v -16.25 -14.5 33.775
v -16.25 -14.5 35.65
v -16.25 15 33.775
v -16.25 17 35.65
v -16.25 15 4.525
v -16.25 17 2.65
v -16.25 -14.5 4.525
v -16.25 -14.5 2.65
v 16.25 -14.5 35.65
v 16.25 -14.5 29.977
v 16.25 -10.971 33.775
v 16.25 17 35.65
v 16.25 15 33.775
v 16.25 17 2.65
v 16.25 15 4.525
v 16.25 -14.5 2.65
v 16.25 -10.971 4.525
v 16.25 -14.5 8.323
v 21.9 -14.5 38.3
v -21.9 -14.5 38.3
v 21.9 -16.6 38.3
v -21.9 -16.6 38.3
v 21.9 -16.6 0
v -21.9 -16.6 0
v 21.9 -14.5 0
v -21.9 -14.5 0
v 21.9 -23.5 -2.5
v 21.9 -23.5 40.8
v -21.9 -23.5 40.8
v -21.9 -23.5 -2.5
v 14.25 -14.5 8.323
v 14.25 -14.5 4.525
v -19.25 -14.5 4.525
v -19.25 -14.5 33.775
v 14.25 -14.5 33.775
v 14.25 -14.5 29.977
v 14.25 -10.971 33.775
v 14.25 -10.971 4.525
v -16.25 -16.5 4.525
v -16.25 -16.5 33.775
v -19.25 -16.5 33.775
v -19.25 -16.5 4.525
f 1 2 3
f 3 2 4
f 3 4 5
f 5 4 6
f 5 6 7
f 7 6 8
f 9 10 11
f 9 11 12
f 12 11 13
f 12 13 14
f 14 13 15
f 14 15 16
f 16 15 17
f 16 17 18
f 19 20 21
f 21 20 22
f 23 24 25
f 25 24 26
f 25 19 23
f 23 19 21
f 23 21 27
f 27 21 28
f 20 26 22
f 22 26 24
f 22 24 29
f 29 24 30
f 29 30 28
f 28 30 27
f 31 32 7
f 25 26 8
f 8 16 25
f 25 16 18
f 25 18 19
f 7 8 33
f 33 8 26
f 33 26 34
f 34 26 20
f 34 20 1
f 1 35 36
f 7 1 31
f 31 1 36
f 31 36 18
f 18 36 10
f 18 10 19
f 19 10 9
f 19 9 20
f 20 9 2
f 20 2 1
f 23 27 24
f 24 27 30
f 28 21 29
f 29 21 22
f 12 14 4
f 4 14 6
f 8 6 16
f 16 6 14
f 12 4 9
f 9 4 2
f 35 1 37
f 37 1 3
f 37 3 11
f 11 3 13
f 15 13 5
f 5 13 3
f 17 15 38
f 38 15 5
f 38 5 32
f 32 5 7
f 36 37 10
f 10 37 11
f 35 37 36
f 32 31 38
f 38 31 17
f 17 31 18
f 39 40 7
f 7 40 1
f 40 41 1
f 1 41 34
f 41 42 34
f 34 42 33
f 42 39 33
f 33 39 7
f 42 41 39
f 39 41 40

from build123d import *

# Parameters (mm, degrees)
SKETCH1_W                = 30
SKETCH1_H                = 29
SKETCH1_R                = 1.75
BOSS_EXTRUDE1_DEPTH      = 2
SKETCH2_W                = 43.8
SKETCH2_H                = 38.3
BOSS_EXTRUDE3_DEPTH      = 9
BOSS_EXTRUDE4_DEPTH      = 43.8
SKETCH16_W               = 2
SKETCH16_H               = 29
CUT_EXTRUDE1_DEPTH       = 26.5
SKETCH15_W               = 32.5
SKETCH15_H               = 31.5
BOSS_EXTRUDE5_DEPTH      = 2
BOSS_EXTRUDE5_DEPTH_BACK = 31
SKETCH20_W               = 29.25
SKETCH20_H               = 29.5
CUT_EXTRUDE2_DEPTH       = 22.9
CUT_EXTRUDE2_DEPTH_BACK  = 22.9
BOSS_EXTRUDE6_DEPTH      = 2
SKETCH22_W               = 3
SKETCH22_H               = 29.25
CUT_EXTRUDE3_DEPTH       = 2


with BuildPart() as part:
    # Sketch1 → Boss-Extrude1 (new body)
    with BuildSketch(Plane.XY):
        Rectangle(SKETCH1_W, SKETCH1_H)
        with Locations((-8.45, 8.168333333)):
            Circle(SKETCH1_R, mode=Mode.SUBTRACT)
        with Locations((8.168333333, 8.45)):
            Circle(SKETCH1_R, mode=Mode.SUBTRACT)
        with Locations((8.45, -8.168333333)):
            Circle(SKETCH1_R, mode=Mode.SUBTRACT)
        with Locations((-8.168333333, -8.45)):
            Circle(SKETCH1_R, mode=Mode.SUBTRACT)
    extrude(amount=BOSS_EXTRUDE1_DEPTH)

    # Sketch2 → Boss-Extrude3 (add)
    with BuildSketch(Plane.XZ.offset(14.5)):
        with Locations((0, 19.15)):
            Rectangle(SKETCH2_W, SKETCH2_H)
    extrude(amount=BOSS_EXTRUDE3_DEPTH)

    # Sketch3 → Boss-Extrude4 (add)
    with BuildSketch(Plane.ZY.offset(21.9)):
        Polygon((0, -23.5), (-2.5, -23.5), (0, -16.6), align=None)
        Polygon((38.3, -23.5), (40.8, -23.5), (38.3, -16.6), align=None)
    extrude(amount=-BOSS_EXTRUDE4_DEPTH)

    # Sketch16 → Cut-Extrude1 (cut, symmetric)
    with BuildSketch(Plane(origin=(0, 0, 0), x_dir=(0, 0, -1), z_dir=(1, 0, 0))):
        with Locations((-1, 0)):
            Rectangle(SKETCH16_W, SKETCH16_H)
    extrude(amount=CUT_EXTRUDE1_DEPTH, both=True, mode=Mode.SUBTRACT)

    # Sketch15 → Boss-Extrude5 (add, two sides)
    with BuildSketch(Plane(origin=(0, 0, 4.65), x_dir=(-1, 0, 0), z_dir=(0, 0, -1))) as boss_extrude5_sk:
        with Locations((0, 1.25)):
            Rectangle(SKETCH15_W, SKETCH15_H)
    extrude(amount=BOSS_EXTRUDE5_DEPTH)
    extrude(boss_extrude5_sk.sketch, amount=-BOSS_EXTRUDE5_DEPTH_BACK)

    # Sketch20 → Cut-Extrude2 (cut, two sides)
    with BuildSketch(Plane(origin=(0, 0, 0), x_dir=(0, 0, -1), z_dir=(1, 0, 0))) as cut_extrude2_sk:
        with Locations((-19.15, 0.25)):
            Rectangle(SKETCH20_W, SKETCH20_H)
    extrude(amount=CUT_EXTRUDE2_DEPTH, mode=Mode.SUBTRACT)
    extrude(cut_extrude2_sk.sketch, amount=-CUT_EXTRUDE2_DEPTH_BACK, mode=Mode.SUBTRACT)

    # Sketch21 → Boss-Extrude6 (add)
    with BuildSketch(Plane(origin=(16.25, 0, 0), x_dir=(0, 0, -1), z_dir=(1, 0, 0))):
        Polygon((-35.65, -10.971015683), (-33.775, -10.971015683), (-29.976700434, -14.5), (-35.65, -14.5), align=None)
        Polygon((-4.525, -10.971015683), (-8.323299566, -14.5), (-2.65, -14.5), (-2.65, -10.971015683), align=None)
    extrude(amount=-BOSS_EXTRUDE6_DEPTH)

    # Sketch22 → Cut-Extrude3 (cut)
    with BuildSketch(Plane(origin=(0, -14.5, 0), x_dir=(1, 0, 0), z_dir=(0, 1, 0))):
        with Locations((-17.75, -19.15)):
            Rectangle(SKETCH22_W, SKETCH22_H)
    extrude(amount=-CUT_EXTRUDE3_DEPTH, mode=Mode.SUBTRACT)


solid = part.part
